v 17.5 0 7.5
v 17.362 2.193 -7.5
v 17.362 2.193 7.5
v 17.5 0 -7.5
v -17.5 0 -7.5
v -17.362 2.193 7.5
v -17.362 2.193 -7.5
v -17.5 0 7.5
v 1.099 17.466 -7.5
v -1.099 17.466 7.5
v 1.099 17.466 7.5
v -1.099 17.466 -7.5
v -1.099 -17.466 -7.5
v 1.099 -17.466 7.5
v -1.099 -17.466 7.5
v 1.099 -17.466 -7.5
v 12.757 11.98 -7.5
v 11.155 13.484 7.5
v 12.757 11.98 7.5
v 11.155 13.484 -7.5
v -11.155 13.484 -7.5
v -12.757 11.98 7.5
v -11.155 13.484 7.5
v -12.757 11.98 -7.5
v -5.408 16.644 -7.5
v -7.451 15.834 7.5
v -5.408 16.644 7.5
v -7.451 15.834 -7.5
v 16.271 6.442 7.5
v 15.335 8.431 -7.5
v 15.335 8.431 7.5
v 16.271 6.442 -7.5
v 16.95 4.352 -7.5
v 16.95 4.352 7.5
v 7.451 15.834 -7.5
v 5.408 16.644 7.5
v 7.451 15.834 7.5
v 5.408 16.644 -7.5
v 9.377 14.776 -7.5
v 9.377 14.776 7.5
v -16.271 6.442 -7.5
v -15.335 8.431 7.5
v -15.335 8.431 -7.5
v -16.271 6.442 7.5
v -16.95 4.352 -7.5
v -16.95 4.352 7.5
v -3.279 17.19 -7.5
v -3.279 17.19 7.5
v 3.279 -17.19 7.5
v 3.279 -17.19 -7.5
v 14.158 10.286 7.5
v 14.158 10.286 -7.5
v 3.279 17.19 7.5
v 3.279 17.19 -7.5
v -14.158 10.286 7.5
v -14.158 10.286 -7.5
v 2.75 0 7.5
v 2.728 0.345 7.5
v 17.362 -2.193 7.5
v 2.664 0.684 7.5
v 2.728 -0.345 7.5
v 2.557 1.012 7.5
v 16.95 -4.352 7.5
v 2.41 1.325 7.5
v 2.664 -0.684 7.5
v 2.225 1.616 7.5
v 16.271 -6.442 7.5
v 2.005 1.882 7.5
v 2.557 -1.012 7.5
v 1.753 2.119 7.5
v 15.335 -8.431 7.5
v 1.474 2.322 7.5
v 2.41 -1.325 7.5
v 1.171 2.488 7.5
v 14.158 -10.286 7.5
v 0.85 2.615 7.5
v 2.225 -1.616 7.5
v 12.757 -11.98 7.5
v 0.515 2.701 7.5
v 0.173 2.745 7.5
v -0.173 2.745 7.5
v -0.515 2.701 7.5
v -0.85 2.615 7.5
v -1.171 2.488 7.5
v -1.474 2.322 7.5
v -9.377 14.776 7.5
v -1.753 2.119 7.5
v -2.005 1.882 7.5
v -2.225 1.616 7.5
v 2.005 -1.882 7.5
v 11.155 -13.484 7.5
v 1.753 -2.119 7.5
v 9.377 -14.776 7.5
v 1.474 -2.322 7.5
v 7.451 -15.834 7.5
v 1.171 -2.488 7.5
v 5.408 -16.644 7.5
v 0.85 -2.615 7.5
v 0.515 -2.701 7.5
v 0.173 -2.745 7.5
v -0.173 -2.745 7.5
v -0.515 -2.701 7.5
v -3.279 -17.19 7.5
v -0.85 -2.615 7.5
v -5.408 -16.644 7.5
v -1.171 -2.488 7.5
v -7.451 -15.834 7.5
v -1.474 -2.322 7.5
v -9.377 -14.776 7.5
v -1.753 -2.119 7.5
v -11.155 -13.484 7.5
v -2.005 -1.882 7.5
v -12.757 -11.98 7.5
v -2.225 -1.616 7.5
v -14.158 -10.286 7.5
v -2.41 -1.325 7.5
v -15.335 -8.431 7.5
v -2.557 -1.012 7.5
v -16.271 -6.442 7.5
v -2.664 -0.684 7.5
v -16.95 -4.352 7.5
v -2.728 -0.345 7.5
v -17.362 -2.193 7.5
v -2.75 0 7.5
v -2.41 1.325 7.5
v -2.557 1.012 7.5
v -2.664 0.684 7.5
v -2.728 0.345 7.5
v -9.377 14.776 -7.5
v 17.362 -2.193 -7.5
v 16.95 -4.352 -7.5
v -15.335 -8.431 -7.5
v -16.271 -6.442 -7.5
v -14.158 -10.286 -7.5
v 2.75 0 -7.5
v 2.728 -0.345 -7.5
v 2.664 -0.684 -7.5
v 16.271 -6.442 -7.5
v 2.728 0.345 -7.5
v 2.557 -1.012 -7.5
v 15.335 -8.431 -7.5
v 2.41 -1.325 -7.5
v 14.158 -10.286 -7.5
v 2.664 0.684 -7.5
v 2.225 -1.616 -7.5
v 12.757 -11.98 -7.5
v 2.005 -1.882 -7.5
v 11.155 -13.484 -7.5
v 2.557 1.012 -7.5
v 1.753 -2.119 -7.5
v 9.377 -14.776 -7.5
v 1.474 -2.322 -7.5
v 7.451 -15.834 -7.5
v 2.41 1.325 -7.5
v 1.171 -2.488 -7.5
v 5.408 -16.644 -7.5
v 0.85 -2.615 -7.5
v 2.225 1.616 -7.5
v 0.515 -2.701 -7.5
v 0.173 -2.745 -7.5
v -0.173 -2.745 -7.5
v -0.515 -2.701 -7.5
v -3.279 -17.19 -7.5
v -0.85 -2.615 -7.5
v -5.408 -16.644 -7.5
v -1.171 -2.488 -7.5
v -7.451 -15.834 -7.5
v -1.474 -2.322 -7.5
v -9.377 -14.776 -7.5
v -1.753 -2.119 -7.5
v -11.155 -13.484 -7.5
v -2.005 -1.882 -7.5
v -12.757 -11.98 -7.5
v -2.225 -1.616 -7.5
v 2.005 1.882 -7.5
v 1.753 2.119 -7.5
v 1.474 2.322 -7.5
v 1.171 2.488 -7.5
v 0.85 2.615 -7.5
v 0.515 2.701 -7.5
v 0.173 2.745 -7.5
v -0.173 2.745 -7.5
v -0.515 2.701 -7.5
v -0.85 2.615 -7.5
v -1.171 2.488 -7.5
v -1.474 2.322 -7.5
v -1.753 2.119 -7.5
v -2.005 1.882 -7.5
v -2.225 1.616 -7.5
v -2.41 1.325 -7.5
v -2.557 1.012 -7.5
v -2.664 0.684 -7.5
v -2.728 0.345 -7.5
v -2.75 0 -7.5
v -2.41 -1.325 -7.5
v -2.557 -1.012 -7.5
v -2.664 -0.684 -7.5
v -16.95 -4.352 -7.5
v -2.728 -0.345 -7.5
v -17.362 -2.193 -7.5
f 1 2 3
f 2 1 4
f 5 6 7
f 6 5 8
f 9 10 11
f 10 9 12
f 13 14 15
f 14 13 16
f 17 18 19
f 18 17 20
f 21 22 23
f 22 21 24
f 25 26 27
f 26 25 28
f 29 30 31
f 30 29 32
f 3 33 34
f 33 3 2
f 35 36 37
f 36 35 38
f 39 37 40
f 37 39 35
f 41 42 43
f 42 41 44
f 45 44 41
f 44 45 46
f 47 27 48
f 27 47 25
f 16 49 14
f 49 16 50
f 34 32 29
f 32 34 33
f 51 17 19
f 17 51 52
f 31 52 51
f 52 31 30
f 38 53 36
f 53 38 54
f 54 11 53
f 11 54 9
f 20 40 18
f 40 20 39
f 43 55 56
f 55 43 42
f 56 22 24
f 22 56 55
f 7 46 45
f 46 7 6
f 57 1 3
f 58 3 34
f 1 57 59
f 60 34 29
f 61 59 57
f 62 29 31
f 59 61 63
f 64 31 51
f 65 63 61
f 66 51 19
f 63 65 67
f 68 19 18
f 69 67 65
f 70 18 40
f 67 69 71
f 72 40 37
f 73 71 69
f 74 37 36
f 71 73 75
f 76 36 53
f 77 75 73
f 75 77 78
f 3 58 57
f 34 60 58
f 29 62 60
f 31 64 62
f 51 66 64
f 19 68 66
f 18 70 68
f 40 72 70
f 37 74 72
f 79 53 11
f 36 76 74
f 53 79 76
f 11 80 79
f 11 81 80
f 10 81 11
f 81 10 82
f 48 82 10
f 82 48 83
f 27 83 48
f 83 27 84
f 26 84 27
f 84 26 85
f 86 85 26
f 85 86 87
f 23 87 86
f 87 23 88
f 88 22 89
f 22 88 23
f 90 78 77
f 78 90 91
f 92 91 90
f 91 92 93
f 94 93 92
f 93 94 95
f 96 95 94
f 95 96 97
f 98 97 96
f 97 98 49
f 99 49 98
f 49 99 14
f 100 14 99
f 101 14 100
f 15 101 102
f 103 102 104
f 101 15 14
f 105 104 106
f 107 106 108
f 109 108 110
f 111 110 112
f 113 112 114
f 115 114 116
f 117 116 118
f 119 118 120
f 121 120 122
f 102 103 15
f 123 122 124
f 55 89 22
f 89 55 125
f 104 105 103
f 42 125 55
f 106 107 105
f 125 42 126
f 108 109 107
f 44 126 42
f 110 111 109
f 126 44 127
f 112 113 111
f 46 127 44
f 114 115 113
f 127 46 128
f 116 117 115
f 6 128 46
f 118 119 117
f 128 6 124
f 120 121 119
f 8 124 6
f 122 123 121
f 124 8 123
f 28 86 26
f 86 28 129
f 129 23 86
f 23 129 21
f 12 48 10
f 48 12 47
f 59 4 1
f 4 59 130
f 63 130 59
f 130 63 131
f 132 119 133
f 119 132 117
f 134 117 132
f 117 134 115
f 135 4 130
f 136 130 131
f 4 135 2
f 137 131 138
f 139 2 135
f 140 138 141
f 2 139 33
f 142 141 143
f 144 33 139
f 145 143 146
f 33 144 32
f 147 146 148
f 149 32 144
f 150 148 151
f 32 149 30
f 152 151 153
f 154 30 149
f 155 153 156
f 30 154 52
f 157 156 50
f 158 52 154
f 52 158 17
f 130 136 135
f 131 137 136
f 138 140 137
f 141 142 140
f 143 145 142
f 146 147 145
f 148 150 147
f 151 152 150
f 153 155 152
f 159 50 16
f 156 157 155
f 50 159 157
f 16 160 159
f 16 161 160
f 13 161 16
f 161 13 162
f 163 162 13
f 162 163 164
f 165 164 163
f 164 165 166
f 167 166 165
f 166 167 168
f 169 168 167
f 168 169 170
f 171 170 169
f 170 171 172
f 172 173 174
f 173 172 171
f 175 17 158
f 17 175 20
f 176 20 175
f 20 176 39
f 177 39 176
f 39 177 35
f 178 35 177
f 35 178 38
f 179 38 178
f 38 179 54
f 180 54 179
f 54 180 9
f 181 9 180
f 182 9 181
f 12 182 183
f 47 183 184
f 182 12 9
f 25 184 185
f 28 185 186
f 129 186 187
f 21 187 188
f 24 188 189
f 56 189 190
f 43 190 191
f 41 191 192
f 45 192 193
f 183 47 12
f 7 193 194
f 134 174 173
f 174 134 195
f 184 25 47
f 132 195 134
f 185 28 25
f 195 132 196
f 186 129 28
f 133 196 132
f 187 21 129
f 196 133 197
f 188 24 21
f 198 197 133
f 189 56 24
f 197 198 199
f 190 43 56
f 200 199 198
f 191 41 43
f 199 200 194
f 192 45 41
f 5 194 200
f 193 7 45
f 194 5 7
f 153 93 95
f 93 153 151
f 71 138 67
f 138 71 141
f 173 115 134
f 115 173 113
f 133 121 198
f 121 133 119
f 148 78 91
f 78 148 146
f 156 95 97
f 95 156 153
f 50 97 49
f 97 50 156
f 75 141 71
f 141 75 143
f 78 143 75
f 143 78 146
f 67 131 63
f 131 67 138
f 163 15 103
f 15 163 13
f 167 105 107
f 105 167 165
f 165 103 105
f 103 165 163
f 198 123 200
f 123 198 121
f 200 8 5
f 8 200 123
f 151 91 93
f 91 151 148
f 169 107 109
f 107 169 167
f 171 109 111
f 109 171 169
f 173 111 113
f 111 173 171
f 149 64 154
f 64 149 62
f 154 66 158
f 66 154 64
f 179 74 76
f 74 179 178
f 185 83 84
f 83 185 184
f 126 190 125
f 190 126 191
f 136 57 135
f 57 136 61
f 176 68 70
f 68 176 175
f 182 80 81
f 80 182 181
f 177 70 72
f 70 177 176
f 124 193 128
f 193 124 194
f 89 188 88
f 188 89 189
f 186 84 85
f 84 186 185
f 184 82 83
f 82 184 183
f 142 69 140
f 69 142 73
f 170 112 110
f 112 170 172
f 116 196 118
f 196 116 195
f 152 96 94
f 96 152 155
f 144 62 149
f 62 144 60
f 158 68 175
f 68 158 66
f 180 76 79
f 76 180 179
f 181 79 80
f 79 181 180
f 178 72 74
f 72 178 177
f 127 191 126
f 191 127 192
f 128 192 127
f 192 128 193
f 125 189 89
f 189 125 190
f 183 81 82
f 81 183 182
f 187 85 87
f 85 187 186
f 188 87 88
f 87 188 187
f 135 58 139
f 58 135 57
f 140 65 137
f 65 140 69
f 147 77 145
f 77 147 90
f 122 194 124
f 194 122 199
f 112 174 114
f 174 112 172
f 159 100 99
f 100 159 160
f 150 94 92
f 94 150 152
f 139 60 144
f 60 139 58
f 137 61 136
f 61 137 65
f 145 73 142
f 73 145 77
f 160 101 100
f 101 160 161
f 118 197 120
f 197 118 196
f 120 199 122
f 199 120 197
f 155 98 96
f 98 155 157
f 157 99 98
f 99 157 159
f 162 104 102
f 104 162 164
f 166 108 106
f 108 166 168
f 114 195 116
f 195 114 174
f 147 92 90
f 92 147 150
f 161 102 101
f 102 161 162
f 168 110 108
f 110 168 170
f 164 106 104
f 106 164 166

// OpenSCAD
$fn = 50;


difference() {
	union() {
		translate(v = [0, 0, -7.5000000000]) {
			cylinder(h = 15, r = 17.5000000000);
		}
	}
	union() {
		translate(v = [0, 0, -100.0000000000]) {
			cylinder(h = 200, r = 2.7500000000);
		}
	}
}
